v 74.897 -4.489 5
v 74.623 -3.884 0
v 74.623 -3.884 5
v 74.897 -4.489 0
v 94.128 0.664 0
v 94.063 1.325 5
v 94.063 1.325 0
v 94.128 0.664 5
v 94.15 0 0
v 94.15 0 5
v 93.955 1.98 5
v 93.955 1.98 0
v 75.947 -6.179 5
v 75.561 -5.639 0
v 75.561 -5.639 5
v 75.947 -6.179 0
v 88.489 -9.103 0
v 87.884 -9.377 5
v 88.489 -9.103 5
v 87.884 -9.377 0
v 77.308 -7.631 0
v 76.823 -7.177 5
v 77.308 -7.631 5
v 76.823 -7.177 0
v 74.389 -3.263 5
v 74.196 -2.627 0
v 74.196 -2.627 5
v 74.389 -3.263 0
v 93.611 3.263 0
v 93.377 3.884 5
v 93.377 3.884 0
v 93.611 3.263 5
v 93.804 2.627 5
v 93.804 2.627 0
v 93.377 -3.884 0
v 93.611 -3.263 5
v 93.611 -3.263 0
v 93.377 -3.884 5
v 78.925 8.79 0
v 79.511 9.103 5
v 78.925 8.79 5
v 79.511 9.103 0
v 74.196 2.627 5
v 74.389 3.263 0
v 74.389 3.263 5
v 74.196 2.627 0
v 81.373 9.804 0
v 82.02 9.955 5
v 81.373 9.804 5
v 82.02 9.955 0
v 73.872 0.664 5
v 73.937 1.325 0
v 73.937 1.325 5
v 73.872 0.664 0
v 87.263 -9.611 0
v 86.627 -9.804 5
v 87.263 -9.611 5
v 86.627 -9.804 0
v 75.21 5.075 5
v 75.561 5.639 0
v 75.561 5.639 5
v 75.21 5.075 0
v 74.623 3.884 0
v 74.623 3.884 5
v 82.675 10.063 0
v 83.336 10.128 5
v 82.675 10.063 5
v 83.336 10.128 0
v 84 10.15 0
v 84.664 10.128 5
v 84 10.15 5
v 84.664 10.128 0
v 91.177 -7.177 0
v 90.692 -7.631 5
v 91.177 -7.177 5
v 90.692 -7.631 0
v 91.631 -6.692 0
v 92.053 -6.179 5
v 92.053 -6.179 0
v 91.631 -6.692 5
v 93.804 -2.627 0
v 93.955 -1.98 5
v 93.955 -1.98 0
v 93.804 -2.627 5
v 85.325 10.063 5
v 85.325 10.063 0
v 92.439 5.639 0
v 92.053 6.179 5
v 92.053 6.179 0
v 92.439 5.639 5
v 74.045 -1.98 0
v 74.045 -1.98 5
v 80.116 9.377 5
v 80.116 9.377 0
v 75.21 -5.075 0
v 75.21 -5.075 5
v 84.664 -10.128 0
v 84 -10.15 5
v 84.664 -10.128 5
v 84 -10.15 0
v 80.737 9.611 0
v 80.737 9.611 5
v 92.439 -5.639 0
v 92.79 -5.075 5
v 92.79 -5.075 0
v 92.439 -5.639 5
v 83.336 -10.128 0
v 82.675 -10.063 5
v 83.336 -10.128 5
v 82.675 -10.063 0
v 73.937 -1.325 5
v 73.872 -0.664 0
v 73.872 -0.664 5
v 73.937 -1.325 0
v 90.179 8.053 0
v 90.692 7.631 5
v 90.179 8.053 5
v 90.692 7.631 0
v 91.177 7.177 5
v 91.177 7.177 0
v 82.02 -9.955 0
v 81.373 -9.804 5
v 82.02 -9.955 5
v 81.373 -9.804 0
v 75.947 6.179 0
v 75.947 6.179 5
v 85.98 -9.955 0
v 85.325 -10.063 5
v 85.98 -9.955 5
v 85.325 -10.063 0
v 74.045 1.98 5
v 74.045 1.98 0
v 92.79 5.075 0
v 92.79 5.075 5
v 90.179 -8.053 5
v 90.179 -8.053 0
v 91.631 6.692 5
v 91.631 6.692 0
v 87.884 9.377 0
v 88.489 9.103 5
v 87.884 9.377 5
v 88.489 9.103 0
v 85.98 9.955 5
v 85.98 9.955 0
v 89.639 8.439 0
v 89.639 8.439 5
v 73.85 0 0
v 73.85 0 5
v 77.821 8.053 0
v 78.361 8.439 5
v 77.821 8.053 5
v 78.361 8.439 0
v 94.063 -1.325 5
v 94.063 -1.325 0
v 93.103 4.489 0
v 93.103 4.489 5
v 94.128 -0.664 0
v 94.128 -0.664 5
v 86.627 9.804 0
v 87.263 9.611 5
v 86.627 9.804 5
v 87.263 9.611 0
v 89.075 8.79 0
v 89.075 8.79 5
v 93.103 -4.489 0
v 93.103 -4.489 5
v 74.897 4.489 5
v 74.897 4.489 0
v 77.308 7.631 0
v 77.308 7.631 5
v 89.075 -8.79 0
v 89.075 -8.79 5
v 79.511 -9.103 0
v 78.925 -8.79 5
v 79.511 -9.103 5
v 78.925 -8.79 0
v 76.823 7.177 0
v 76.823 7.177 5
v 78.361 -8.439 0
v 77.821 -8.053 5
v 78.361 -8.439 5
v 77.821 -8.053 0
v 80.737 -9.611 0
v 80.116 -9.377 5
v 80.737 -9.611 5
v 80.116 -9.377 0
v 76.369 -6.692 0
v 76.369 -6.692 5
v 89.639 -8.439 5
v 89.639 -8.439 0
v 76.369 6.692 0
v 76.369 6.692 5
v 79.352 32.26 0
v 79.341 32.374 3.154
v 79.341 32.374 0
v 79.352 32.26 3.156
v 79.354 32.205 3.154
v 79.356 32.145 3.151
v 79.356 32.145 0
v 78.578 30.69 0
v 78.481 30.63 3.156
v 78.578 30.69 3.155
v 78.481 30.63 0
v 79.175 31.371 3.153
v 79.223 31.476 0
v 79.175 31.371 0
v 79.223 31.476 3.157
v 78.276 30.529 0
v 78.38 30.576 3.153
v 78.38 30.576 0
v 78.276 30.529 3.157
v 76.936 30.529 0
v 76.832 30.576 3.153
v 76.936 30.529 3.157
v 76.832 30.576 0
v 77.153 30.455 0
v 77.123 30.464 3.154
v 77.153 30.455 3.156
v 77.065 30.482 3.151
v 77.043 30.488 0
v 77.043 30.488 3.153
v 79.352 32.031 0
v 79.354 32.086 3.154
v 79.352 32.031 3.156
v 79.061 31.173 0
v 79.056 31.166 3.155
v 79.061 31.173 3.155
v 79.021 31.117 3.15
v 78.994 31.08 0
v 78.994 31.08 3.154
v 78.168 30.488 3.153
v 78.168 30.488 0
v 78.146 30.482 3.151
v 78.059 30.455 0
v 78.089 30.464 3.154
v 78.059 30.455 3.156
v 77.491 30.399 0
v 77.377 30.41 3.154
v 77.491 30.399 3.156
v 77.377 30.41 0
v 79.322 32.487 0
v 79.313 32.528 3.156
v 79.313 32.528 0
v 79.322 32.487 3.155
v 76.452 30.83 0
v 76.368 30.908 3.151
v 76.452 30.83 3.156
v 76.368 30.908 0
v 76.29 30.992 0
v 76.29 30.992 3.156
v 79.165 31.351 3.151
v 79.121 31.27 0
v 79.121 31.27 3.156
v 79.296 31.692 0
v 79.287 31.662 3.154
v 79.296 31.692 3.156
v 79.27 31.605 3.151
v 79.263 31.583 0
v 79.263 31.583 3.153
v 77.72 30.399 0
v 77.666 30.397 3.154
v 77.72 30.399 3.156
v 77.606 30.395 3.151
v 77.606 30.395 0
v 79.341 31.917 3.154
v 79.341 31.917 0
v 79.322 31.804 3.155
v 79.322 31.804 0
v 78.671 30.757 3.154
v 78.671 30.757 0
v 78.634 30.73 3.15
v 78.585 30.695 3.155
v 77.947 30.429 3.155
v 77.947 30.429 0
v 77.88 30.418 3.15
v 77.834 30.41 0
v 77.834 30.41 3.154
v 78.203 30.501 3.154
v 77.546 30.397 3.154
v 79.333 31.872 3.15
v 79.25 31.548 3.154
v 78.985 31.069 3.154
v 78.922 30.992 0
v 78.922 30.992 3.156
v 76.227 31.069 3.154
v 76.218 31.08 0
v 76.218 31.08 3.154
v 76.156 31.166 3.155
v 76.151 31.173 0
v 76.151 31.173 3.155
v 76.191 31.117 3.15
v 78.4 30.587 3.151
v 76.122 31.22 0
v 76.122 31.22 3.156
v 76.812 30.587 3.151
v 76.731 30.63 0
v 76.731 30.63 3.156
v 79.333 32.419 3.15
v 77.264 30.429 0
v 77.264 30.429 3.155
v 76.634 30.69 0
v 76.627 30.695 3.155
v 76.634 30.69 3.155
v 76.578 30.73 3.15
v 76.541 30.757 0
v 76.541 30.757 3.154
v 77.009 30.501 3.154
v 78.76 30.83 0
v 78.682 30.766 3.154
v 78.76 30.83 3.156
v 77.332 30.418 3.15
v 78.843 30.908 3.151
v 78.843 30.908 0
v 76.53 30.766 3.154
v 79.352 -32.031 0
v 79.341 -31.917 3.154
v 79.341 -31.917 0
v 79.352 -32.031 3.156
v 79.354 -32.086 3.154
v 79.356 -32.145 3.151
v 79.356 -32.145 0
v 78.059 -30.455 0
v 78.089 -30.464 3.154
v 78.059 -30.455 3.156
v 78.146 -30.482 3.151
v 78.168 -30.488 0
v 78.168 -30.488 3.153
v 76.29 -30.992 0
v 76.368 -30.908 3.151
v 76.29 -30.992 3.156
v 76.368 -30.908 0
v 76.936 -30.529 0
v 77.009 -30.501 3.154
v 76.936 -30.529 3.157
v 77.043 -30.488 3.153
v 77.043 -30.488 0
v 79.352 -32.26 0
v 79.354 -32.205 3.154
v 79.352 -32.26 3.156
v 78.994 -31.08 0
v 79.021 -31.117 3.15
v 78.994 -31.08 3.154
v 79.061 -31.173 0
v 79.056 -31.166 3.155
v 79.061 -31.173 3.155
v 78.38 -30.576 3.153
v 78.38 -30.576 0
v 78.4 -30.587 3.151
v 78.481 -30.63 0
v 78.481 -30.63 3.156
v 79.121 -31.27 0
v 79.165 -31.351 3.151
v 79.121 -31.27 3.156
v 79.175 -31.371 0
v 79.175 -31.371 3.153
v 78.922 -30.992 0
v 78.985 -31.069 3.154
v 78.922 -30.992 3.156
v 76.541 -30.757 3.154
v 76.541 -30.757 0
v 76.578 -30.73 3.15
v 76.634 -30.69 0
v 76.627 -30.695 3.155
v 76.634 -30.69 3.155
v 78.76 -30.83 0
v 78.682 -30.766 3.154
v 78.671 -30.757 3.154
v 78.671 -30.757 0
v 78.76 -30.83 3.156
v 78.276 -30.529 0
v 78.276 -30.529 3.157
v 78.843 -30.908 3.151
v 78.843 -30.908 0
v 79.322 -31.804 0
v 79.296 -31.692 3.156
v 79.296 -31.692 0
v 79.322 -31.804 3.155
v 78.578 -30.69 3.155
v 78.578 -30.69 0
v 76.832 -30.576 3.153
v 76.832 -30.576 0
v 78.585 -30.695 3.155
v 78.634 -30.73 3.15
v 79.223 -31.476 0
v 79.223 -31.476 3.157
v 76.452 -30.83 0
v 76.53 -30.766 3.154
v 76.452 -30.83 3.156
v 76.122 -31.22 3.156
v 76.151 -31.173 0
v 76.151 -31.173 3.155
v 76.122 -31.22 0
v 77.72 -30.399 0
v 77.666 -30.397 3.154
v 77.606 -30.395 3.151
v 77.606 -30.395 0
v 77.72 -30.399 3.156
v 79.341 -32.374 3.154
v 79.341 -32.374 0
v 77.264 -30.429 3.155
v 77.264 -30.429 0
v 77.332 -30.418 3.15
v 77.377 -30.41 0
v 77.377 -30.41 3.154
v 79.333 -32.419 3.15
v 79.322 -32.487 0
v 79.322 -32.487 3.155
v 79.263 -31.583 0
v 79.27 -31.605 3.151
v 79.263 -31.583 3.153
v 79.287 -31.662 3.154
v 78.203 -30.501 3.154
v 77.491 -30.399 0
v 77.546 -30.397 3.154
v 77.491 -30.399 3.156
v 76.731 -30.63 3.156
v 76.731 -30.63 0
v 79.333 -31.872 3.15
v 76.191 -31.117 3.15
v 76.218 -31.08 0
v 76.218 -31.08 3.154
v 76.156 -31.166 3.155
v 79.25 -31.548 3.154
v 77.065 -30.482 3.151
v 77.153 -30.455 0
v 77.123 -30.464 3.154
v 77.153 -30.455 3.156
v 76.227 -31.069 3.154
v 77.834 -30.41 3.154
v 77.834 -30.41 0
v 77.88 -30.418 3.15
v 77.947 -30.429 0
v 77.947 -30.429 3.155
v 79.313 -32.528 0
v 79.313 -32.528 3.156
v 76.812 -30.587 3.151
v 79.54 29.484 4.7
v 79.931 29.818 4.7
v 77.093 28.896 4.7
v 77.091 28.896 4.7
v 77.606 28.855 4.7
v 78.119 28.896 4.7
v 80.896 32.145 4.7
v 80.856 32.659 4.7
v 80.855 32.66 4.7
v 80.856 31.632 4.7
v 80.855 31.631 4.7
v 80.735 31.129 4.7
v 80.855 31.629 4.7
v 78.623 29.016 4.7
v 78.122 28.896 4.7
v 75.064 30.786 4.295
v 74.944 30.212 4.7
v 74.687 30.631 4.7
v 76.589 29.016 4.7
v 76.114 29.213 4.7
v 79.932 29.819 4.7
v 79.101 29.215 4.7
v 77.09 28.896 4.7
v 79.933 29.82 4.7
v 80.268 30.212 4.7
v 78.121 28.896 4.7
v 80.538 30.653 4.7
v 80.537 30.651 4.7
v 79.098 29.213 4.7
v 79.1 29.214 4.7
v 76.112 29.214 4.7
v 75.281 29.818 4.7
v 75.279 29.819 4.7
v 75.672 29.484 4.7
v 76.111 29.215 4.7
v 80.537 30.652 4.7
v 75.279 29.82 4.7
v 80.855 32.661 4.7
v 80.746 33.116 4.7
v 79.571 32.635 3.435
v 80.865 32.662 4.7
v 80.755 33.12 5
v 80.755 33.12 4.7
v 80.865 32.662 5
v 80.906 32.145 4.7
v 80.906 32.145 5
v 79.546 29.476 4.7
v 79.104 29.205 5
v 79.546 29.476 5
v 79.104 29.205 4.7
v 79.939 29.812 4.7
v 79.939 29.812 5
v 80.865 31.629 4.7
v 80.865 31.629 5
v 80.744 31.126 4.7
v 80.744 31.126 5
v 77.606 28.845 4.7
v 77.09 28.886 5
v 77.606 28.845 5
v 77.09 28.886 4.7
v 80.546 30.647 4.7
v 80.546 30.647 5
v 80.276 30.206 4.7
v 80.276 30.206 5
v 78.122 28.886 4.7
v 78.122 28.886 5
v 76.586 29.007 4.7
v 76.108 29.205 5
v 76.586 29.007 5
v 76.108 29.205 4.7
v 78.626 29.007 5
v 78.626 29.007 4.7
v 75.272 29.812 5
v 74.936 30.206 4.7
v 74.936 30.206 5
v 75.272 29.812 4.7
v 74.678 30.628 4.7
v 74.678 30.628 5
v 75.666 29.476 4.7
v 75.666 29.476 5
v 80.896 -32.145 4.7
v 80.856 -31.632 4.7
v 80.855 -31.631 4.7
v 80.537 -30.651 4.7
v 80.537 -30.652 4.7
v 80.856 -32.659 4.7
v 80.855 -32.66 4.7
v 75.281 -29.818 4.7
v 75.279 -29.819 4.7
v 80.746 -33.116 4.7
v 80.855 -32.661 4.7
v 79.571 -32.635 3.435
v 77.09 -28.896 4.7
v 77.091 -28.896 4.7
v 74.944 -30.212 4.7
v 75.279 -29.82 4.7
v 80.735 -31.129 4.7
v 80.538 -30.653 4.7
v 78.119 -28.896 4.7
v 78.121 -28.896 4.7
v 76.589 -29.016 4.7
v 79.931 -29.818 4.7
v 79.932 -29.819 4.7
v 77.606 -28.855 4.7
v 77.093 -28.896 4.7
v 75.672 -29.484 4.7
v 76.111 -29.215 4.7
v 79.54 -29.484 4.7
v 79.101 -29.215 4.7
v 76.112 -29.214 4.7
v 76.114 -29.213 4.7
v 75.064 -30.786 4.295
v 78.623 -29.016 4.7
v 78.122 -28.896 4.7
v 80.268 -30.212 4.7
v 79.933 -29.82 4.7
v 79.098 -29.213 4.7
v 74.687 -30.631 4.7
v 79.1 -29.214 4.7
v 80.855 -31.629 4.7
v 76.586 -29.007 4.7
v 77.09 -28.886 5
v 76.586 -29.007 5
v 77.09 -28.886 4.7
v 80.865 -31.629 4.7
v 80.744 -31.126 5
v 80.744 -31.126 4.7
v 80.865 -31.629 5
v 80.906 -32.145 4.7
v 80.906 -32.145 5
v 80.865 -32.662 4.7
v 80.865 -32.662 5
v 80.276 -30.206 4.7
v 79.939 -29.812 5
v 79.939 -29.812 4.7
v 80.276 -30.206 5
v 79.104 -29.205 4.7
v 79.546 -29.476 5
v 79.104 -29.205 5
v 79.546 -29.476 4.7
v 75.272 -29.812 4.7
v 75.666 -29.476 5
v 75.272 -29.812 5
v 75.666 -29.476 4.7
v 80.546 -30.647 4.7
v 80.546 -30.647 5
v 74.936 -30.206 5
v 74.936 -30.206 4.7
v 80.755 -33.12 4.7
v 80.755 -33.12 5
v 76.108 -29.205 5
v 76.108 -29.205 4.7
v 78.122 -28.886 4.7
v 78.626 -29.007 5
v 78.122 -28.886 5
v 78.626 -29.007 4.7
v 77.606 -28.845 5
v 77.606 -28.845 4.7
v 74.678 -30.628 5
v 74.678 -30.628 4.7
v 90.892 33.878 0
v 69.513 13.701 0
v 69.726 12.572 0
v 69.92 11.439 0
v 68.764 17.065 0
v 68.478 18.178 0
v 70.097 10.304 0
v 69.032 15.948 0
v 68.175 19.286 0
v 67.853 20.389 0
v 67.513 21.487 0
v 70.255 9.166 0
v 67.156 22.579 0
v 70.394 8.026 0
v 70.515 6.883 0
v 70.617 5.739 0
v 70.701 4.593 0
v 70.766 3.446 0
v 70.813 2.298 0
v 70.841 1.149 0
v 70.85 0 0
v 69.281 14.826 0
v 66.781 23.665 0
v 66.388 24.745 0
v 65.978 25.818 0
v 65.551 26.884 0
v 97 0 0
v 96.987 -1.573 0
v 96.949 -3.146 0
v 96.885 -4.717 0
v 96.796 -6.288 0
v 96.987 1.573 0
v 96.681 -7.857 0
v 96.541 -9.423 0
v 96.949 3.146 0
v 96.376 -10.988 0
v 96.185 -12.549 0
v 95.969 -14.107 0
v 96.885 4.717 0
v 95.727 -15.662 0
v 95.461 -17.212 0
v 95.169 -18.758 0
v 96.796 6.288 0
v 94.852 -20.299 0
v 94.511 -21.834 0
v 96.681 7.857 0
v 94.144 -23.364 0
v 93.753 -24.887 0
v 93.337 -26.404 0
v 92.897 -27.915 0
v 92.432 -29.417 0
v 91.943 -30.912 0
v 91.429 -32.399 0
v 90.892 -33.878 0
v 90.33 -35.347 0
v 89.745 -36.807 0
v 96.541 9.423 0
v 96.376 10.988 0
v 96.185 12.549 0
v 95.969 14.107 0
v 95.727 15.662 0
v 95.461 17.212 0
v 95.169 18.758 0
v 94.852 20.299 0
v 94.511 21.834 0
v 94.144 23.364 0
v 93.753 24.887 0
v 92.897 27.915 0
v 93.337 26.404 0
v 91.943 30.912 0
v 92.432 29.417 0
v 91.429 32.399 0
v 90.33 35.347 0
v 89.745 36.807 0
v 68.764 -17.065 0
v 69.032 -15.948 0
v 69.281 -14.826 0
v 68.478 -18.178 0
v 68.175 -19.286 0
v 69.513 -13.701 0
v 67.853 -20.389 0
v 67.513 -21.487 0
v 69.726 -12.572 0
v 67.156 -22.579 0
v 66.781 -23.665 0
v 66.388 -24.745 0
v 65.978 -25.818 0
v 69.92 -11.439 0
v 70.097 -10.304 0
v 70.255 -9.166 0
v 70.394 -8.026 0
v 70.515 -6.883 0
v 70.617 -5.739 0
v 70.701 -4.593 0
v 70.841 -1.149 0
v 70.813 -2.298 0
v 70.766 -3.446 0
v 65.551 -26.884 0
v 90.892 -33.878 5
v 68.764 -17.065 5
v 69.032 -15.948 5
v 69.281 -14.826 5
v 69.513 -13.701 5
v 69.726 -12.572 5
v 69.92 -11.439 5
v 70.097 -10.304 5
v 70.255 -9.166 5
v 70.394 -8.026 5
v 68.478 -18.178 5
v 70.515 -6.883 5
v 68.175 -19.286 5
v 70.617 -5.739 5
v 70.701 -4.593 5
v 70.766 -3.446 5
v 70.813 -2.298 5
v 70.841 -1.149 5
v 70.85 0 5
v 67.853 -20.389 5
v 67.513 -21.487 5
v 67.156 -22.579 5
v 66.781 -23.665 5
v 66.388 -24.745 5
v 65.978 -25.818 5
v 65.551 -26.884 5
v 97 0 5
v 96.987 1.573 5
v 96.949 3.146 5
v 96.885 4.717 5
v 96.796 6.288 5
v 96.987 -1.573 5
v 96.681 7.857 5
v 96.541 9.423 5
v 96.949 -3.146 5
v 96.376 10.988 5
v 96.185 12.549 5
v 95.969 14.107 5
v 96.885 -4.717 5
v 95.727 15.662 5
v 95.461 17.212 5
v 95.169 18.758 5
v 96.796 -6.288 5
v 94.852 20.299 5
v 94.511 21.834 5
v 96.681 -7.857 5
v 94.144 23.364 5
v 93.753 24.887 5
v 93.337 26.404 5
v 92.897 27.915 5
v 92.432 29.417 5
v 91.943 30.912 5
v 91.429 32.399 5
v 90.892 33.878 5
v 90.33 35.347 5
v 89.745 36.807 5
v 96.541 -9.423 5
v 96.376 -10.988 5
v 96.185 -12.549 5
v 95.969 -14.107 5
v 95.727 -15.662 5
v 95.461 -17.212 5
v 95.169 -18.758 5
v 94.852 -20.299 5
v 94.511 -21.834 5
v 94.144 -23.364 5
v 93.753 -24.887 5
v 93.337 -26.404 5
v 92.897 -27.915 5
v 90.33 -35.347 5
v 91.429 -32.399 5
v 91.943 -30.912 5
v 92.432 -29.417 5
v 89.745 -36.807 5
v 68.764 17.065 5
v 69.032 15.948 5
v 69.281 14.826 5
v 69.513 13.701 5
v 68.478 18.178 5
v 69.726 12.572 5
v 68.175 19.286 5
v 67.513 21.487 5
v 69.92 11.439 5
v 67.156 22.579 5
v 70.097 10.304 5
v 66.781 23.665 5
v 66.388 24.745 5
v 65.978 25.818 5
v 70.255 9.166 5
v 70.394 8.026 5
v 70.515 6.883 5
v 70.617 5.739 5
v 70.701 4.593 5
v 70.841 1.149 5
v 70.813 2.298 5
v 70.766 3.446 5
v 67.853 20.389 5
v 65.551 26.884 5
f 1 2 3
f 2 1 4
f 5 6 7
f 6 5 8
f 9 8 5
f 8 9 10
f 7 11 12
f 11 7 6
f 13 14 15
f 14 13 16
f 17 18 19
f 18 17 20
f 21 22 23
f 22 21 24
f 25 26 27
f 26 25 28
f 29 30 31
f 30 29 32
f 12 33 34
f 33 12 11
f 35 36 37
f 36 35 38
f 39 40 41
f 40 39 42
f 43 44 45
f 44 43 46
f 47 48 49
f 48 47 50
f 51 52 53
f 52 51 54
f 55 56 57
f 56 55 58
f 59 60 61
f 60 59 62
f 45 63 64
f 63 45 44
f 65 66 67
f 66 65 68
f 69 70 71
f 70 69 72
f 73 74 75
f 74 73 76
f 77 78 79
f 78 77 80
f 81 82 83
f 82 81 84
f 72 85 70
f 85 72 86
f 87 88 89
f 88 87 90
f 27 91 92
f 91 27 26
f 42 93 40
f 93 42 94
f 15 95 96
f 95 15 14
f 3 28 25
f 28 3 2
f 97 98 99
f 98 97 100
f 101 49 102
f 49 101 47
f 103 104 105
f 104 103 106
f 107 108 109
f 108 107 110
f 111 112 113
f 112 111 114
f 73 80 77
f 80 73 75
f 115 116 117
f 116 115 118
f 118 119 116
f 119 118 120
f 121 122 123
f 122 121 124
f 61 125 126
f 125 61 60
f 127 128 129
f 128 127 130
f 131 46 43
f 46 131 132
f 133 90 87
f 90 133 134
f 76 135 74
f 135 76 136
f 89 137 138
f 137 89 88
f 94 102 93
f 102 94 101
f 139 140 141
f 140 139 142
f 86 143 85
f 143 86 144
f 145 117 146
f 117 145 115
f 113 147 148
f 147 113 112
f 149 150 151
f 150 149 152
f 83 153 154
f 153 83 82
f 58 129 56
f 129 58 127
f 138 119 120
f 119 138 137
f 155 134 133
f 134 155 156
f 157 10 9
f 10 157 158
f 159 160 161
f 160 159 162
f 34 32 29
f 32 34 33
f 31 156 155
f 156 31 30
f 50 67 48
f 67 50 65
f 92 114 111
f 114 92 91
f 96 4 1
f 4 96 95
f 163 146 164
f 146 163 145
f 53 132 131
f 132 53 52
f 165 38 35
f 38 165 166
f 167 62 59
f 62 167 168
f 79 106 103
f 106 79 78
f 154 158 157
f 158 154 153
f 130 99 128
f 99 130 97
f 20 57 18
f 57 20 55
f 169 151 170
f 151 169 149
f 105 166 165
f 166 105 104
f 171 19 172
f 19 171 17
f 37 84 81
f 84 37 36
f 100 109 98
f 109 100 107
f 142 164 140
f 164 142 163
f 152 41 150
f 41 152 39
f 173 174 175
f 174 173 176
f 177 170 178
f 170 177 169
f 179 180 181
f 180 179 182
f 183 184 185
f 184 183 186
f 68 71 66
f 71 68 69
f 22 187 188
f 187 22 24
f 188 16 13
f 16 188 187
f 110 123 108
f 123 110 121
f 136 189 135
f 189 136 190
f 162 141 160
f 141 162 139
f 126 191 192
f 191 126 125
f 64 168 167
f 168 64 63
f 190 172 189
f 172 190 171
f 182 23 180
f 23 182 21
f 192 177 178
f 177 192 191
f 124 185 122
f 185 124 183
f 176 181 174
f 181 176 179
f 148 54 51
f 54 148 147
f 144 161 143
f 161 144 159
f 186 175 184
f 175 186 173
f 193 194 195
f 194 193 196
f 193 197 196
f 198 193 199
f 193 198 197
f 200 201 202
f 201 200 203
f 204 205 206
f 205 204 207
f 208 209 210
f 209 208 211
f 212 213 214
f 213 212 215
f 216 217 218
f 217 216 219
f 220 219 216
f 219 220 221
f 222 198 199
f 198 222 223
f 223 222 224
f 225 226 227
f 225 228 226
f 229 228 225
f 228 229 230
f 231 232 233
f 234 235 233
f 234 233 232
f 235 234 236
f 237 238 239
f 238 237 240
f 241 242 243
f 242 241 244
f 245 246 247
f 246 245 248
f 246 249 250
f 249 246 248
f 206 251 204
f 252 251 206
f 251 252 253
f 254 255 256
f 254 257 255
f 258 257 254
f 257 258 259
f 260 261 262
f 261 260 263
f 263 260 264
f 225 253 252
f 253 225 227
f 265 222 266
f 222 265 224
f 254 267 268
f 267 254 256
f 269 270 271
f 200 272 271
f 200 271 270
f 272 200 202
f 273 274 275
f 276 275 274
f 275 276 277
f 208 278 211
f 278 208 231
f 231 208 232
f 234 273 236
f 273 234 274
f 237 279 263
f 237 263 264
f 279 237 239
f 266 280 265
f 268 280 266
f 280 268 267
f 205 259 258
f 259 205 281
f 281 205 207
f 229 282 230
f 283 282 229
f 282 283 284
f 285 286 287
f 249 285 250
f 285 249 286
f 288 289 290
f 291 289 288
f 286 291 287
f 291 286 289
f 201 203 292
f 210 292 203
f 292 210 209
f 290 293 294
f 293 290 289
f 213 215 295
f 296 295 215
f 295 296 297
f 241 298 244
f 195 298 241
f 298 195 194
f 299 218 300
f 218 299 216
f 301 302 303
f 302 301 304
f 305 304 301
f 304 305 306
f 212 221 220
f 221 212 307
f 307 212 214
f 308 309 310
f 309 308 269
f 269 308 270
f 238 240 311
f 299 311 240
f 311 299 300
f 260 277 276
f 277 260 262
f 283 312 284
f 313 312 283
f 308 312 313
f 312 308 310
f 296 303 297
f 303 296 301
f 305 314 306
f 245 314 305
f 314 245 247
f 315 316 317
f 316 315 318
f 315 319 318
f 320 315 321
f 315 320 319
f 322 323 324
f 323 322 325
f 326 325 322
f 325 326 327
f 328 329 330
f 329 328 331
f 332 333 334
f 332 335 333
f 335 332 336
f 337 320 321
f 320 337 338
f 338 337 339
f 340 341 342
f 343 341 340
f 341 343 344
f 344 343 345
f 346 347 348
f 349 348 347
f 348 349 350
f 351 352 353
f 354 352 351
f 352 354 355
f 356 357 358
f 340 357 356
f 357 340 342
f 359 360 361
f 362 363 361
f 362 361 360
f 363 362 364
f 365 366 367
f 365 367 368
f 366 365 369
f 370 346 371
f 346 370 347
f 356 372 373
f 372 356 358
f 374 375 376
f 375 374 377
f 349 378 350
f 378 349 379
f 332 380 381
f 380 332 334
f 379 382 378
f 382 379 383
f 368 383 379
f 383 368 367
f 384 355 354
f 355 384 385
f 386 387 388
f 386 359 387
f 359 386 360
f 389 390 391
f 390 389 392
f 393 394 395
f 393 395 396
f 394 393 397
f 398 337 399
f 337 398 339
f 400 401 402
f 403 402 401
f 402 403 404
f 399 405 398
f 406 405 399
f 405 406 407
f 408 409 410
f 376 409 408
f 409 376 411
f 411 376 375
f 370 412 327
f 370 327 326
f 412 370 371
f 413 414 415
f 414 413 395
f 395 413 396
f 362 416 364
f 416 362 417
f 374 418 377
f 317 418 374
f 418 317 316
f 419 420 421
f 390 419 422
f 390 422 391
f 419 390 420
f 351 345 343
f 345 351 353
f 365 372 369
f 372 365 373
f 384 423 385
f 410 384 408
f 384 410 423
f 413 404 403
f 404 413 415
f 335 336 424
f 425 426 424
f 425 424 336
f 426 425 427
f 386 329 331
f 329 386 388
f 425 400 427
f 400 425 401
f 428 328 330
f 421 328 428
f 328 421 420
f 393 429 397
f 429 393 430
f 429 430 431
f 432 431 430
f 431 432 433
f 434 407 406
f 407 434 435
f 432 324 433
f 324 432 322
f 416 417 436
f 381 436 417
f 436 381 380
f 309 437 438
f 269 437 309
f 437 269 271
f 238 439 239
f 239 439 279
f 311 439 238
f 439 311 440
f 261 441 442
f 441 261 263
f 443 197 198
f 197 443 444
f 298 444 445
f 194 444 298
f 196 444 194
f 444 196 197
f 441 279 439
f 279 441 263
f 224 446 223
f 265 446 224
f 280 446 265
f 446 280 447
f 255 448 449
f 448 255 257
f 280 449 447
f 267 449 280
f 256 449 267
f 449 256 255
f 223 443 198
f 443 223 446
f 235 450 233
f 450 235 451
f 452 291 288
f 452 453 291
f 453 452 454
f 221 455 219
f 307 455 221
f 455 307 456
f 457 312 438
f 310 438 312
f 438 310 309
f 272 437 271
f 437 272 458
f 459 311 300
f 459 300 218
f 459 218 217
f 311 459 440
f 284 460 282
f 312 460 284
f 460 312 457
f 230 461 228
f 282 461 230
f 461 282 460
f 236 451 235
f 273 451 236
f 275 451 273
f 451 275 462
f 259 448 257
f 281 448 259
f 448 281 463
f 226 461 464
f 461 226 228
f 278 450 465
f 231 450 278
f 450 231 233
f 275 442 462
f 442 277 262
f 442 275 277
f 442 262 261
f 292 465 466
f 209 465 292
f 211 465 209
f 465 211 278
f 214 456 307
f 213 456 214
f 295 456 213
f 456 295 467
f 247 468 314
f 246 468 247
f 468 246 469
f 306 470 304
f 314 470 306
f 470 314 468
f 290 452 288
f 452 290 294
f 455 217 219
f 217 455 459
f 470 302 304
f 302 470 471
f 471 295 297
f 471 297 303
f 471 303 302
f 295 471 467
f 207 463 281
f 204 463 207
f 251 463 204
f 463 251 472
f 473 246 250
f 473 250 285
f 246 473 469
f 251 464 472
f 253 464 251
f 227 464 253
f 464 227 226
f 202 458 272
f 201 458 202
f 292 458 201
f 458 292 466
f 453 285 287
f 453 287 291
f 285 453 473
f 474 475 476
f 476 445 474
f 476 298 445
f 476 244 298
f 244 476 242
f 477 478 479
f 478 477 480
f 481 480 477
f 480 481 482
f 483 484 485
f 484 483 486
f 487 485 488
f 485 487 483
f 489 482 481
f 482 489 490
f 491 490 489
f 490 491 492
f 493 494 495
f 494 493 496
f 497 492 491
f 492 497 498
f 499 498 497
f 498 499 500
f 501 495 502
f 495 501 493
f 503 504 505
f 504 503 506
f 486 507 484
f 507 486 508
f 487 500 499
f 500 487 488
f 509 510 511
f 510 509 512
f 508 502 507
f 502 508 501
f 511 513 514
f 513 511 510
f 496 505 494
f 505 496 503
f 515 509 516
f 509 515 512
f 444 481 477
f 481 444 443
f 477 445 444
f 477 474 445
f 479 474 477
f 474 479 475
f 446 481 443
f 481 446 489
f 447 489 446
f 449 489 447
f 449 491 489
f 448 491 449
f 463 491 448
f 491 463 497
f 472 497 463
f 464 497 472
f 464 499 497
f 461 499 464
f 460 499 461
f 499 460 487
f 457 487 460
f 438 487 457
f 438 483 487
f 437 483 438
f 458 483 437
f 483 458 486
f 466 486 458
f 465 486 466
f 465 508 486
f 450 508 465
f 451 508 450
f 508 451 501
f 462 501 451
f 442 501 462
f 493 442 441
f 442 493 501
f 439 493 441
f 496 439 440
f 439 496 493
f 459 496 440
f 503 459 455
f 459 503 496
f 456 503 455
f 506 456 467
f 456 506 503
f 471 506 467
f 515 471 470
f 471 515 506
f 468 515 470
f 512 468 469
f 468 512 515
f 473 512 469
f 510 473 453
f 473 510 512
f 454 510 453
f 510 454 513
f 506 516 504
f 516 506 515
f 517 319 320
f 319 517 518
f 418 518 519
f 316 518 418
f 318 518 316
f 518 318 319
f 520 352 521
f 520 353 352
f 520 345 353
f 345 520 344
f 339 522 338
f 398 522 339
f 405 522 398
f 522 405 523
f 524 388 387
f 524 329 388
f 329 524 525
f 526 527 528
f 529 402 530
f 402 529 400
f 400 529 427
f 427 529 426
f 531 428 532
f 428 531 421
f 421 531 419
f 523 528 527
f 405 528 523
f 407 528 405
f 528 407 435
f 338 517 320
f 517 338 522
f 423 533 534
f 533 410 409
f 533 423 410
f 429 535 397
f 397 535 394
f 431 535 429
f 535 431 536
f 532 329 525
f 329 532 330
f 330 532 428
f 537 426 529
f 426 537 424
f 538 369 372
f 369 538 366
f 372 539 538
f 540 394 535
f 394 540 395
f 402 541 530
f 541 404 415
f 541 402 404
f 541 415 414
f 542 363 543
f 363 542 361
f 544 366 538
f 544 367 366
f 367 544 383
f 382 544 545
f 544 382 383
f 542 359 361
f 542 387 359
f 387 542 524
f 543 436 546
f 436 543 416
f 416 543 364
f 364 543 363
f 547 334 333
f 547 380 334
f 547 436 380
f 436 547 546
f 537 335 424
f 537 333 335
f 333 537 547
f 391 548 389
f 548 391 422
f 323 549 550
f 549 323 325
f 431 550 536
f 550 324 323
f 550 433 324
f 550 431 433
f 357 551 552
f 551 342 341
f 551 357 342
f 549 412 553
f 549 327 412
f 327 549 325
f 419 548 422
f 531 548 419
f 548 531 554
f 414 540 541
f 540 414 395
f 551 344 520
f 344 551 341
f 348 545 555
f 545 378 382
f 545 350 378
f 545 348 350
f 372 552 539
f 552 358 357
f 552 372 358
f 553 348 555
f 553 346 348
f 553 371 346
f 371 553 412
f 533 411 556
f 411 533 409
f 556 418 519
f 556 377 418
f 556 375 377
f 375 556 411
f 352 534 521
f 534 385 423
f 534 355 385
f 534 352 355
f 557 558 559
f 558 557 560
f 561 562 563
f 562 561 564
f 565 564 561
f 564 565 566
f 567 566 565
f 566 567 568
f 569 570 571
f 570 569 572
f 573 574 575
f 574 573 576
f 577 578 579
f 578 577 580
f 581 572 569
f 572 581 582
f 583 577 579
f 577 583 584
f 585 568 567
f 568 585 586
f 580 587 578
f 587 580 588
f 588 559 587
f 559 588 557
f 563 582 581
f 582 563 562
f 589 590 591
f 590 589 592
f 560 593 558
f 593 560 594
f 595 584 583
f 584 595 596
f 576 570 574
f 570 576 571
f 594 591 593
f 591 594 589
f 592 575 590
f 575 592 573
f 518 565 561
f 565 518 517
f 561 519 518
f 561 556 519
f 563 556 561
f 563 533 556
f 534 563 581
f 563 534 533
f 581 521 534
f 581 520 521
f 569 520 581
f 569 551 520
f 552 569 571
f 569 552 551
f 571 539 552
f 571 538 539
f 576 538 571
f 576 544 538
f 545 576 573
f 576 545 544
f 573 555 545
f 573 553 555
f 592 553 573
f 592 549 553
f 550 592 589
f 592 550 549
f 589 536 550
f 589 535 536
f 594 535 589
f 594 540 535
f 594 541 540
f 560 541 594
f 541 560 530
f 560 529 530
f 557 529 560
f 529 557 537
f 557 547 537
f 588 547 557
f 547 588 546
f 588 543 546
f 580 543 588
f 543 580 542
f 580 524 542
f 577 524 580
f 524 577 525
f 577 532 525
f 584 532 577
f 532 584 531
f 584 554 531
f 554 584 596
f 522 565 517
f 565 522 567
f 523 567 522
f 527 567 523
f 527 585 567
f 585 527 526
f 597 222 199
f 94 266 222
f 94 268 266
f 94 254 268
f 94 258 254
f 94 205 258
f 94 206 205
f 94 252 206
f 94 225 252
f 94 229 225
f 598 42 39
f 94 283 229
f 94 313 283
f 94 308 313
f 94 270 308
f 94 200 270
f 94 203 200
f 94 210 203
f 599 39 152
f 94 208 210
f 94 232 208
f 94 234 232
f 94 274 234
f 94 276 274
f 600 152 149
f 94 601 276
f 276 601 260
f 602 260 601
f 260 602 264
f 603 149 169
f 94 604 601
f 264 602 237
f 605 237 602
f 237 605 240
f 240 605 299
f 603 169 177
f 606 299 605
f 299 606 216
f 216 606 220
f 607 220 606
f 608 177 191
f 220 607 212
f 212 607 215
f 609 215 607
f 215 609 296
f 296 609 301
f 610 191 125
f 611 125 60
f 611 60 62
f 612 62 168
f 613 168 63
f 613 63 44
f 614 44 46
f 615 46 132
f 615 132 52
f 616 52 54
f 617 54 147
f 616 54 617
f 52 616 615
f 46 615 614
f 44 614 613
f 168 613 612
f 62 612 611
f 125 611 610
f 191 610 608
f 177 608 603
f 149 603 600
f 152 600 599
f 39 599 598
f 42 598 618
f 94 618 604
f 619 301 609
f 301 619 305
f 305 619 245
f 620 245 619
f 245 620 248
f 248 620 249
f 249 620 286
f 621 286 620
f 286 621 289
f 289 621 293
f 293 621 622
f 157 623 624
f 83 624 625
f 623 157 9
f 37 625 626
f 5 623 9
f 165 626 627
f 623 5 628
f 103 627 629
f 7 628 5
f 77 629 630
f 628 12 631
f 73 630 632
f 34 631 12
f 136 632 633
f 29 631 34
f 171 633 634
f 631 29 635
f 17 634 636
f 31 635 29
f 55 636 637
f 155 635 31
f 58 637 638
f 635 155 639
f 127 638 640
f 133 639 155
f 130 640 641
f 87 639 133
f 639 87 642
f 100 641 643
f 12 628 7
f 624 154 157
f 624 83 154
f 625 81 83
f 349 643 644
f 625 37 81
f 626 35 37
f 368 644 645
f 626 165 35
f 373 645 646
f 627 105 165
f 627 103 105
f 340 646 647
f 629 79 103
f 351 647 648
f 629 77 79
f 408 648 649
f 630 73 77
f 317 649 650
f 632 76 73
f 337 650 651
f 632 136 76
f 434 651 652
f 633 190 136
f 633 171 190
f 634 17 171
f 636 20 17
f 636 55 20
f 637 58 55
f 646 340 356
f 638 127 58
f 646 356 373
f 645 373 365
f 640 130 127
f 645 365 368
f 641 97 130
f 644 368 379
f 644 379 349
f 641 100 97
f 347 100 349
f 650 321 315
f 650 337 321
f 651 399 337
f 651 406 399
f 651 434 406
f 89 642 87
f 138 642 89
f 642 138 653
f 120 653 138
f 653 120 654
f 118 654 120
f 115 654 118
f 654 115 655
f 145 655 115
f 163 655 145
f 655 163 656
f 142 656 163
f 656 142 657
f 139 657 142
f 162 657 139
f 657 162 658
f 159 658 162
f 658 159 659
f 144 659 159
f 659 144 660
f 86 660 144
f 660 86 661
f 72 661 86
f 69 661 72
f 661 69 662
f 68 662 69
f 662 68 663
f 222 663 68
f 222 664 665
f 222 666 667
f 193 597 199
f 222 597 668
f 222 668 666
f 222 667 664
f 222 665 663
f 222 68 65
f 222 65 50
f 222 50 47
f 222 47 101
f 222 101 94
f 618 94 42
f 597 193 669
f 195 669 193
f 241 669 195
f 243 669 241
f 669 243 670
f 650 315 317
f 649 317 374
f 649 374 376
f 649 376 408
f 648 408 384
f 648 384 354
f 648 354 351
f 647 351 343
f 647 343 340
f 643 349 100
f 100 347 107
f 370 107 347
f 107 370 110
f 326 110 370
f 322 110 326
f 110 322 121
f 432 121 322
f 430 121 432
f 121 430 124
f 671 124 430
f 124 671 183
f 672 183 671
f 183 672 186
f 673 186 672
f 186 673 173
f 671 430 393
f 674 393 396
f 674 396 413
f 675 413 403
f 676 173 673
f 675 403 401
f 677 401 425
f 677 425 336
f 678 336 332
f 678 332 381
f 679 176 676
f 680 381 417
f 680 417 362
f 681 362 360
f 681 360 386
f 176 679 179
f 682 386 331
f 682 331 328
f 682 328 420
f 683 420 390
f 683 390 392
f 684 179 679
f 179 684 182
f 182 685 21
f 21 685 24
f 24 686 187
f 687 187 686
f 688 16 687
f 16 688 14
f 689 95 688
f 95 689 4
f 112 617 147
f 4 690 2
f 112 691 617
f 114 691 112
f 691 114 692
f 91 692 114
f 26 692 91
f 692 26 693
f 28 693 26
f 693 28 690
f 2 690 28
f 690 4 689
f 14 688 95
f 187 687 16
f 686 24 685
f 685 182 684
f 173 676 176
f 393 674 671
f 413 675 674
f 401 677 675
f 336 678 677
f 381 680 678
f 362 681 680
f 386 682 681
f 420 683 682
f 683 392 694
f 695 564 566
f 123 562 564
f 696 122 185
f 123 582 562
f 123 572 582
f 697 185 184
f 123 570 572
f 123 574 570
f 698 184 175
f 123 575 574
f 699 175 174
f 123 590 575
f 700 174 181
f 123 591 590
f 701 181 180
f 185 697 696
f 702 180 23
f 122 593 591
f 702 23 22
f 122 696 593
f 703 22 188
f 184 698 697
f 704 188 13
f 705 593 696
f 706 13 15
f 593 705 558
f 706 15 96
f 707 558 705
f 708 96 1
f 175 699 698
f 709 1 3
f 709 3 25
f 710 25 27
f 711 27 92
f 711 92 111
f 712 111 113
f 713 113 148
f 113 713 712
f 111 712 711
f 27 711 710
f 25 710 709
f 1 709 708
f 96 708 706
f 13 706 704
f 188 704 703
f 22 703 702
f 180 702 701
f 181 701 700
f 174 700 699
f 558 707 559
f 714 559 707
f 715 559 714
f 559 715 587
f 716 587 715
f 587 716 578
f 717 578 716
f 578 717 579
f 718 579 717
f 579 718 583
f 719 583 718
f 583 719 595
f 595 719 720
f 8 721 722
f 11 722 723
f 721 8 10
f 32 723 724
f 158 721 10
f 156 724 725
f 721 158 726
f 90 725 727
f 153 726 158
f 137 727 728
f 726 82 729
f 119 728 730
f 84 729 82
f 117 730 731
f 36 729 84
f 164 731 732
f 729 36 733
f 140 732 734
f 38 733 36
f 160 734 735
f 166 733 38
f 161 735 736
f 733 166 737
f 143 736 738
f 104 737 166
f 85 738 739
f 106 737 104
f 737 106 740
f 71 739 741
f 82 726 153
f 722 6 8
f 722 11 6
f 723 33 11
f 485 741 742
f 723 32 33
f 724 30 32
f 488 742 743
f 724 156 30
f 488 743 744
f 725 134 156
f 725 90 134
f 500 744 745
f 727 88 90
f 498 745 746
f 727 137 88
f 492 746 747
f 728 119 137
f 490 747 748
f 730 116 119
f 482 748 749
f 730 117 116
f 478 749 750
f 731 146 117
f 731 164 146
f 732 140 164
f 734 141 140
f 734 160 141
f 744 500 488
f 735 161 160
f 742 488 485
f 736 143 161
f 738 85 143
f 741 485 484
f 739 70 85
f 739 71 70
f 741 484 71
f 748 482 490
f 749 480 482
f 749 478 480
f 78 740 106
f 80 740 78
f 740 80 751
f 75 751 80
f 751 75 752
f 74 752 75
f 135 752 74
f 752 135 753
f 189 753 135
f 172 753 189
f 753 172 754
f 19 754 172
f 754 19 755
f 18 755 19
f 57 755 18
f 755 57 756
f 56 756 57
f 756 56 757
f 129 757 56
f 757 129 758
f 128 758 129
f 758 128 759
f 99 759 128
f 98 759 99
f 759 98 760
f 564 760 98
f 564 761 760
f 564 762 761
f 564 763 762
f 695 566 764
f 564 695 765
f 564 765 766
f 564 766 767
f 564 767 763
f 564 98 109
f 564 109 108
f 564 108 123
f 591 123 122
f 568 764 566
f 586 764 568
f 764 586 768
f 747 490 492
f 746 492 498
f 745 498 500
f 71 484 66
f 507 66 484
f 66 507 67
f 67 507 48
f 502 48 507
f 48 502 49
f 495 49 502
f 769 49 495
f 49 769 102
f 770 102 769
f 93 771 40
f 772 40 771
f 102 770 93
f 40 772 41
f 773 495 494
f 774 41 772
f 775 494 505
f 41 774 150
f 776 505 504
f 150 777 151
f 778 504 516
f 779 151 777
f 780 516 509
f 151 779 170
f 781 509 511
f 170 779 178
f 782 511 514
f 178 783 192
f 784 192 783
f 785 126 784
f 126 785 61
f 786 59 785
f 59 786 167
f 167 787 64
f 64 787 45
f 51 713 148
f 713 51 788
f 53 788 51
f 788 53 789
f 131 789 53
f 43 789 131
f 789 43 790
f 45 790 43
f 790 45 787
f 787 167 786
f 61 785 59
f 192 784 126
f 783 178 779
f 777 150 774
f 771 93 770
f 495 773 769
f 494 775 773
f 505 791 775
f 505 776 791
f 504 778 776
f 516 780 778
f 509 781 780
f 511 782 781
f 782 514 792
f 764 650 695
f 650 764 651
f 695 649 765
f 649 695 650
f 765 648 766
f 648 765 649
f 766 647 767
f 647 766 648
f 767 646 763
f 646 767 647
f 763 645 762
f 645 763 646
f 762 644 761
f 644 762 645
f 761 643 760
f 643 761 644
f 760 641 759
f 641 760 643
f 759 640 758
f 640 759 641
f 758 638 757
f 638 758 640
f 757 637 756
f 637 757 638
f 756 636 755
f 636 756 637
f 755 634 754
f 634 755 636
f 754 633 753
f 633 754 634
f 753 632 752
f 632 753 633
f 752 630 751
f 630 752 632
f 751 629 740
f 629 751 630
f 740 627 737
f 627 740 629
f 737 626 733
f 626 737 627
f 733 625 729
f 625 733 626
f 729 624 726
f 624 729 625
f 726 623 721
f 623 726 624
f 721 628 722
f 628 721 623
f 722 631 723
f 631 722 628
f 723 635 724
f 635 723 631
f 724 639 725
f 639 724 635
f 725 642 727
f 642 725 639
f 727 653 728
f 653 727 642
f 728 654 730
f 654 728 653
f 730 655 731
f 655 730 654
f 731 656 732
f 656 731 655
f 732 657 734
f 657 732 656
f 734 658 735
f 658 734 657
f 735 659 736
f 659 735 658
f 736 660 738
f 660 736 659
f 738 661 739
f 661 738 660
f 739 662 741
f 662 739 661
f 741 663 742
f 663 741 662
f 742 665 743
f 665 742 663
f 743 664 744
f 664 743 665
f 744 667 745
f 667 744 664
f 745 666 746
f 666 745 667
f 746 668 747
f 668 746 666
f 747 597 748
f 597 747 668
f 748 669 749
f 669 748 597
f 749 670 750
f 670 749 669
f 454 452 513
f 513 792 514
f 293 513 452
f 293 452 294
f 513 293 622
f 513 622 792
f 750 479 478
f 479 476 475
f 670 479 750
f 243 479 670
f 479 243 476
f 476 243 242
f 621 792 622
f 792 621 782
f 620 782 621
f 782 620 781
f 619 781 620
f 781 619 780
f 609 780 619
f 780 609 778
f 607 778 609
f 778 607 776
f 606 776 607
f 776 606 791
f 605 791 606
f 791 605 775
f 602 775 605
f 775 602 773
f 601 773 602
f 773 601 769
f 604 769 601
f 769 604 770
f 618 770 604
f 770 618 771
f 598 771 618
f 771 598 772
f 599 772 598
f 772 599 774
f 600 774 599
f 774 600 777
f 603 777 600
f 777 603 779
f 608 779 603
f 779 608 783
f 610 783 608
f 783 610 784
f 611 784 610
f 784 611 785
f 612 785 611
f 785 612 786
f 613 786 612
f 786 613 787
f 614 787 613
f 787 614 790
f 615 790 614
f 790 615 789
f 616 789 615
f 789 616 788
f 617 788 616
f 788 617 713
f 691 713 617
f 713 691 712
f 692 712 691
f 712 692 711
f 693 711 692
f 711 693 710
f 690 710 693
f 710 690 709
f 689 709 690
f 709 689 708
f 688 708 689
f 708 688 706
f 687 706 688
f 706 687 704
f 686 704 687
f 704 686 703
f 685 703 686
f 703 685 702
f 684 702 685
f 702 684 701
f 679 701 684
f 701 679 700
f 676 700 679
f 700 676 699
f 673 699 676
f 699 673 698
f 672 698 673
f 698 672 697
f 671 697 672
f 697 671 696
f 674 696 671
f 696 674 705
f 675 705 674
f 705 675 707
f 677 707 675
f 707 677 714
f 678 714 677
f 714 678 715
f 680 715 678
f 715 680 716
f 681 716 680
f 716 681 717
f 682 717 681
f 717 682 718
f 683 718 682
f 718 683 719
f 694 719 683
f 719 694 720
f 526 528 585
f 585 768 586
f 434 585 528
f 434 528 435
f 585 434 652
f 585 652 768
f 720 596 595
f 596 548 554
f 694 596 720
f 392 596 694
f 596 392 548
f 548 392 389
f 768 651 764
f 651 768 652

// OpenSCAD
// file: parameters.scad
// =============================================================================
// Gen-CA — nightly 2026-10-13 (physics_scorer, honest magpylib watts)
// Break the plate limit instead of the physics: the 2026-10-11 scans showed watts keep rising with machine size, but Ø194 was the largest one-piece stator/rotor set that fits one 410 mm plate. Gen-CA makes the steel disc the structural rotor and prints the magnet carrier as 8 bolt-on arcs per rotor plus a separate D-flat hub, opens the stator centre, and prints the 12 bobbin bases in place inside their stator bays, so a much bigger R84 / Ø226 machine (bobbins r64–104, 4.95 mm copper, 7.55 mm magnet gap) still packs on ONE plate.
// Clocking 0 deg (magnets N facing S) + D-flat keyed bore + index notch + flip-symmetric hole map.
// Windable 2-piece bobbin; turns = physics_scorer turns_fit; copper only between flanges.
// Steel back-iron: 2× Ø194 × 4.76 mm (3/16") mild-steel discs (steel_backiron_disc.dxf); magnets sit ON the steel
// (through-pockets) -> score with --back-iron. Night 2026-10-13.
// =============================================================================
topology            = "dual_rotor";

// --- Wire / winding (physics_scorer winding-fit) -------------------------------
wire_awg            = 26;
wire_od             = 0.45;     // insulated OD mm (bare 0.405)
fill_realistic      = 0.65;     // insulated-wire area / window (DENSE layered wind with a jig; scorer cap 0.65)
turns               = 366;       // = physics_scorer turns_fit (do NOT raise)
coil_former_type    = "bobbin";
coil_core_inset     = 18.10;     // radial copper build: hub = copper boundary inset by this
wind_build_axial    = 0.0;      // nothing proud of the flanges
wind_build_radial   = 0.0;

// --- Bobbin (base + lid) ---------------------------------------------------------
coil_id_r           = 64.00;    // copper boundary sector
coil_od_r           = 104.00;
span_deg            = 26.87;    // = pitch - 2*asin((wall+0.85)/coil_id_r) -> >=1.2 mm stator web
former_web          = 4.95;     // copper height between flanges (TALL copper: steel keeps Bz up)
flange_t            = 0.80;     // >= 0.8 mm FDM wall rule (tall winds push on the flanges)
wall                = 0.80;     // flange lip beyond copper
former_bare_h       = former_web + 2 * flange_t;
coil_envelope_h     = former_bare_h + 2 * wind_build_axial;
tab_w               = 7.0;
tab_len             = 7.0;
tab_h               = former_bare_h / 2;
pin_d               = 1.9;      // 1.75 mm filament locating pin
coil_mount_r        = coil_od_r + 0.2 + 4.0;
lead_y              = 1.6;
lead_slot_w         = 0.9;
lead_groove_d       = 0.6;

// --- Gap -------------------------------------------------------------------------
run_clear           = 0.50;     // rotor face -> flange
gap_spacer_h        = run_clear + wind_build_axial;
m2m                 = coil_envelope_h + 2 * run_clear;   // rotor face to rotor face (= gap_sleeve length)

// --- Stator ----------------------------------------------------------------------
coil_stations       = 12;
bay_clear           = 0.35;     // 0.35 mm: bobbin BASES print IN PLACE inside the stator bays (print-in-place gap), then pop out
stator_thick        = former_bare_h;                        // bobbins flush both faces
stator_od           = 226;
shaft_clear_stator  = 14.0;     // stator is static; gap sleeve OD 12 spins inside
stator_ir           = 58.85;    // ANNULAR stator: open centre (nested one-plate pack); inner rim 4.0 mm

// --- Rotor(s) --------------------------------------------------------------------
magnet_Br           = 1.43;     // N52
magnet_d_large      = 20.0;
magnet_h_large      = 5.0;      // one O20x5 per pocket
magnet_h_small      = 5.0;      // unused: no O5 pockets in this kit
halbach_magnetisation = "none";  // NO O5 assist magnets in this kit (scan: they lower the 4-pole score)
rotor_b_same_axis   = true;     // same-index magnets share one axis: N faces S across the gap
large_pocket_d      = 20.3;
small_pocket_d      = 5.3;
pocket_h            = 5.00;     // THROUGH the carrier: magnet back face sits on the steel disc (FLUSH seat: carrier = magnet height, magnet face level with the rotor face)
large_n             = 8;
R_large             = 84.0;
small_r_list        = [];       // no O5 pockets
carrier_od          = 194.0;
ring_ir             = 70.85;    // RING rotor: PLA magnet ring r ring_ir..carrier_od/2 (steel disc = structural rotor)
hub_flange_od       = 74.0;     // separate rotor_hub flange (inside the ring, flush with the ring face)
csk_d               = 6.6;      // M3 countersunk head pocket (ISO 10642 head 6.0 nominal) on the stator face
csk_depth           = 1.55;     // = (csk_d - m3_clear) / 2: 90 deg cone; head sits 0.3 mm below the face
n_seg               = 8;        // magnet-carrier ARCS per rotor (segmented carrier)
seg_deg             = 360 / n_seg;
seg_start           = -22.5;   // arc edge angle (between pocket 0 and its clamp bolt)
seg_kerf_deg        = 0.4;      // gap between neighbouring arcs on the steel
carrier_thick       = pocket_h;
hub_h               = 12.0;     // > steel_t + insert: radial set-screw clears the steel
hub_od              = 24.0;     // slim hub so the M4 brace rods fit at R~18 inside the coil ring
hub_insert_d        = 4.0;      // M3 heat-set insert, radial, bears on the D-flat
rotor_b_offset_deg  = 0.0;      // CLOCKING: magnets directly opposite
shaft_key           = "dflat";
dflat_depth         = 0.5;      // 8 mm shaft with 0.5 mm flat (7.5 across flat)
index_notch_d       = 3.0;

// --- Steel back-iron (buyable laser-cut) -------------------------------------------
steel_t             = 4.76;      // mild steel thickness (image method ignores it; sized from steel_flux.py so the return path stays well below saturation)
steel_center_hole   = 26.0;     // slips over the rotor hub (OD 24)
steel_od            = carrier_od;   // steel disc OD = rotor carrier OD

// --- Modular MAX interface ----------------------------------------------------------
shaft_bore          = 8.35;
dflat_x             = 4.0 - dflat_depth + (shaft_bore - 8.0) / 2;
bearing_d           = 21.85;
bearing_h           = 7.2;
m3_clear            = 3.5;
bolt_r_inner        = 30.0;     // M3 steel-disc clamp bolts (inside the magnet ring)
bolt_n_inner        = 4;
bolt_inner_angles   = [0, 90, 180, 270];
bolt_r_outer        = 84.0;     // second M3 steel-disc clamp ring
bolt_outer_angles   = [22.5, 67.5, 112.5, 157.5, 202.5, 247.5, 292.5, 337.5];
flange_bolt_r       = 107.5;     // frame rods: OUTSIDE the rotor OD (rotors spin inside them)
flange_bolt_n       = 4;
flange_bolt_offset  = 45.00;    // between coil stations -> never cuts a lead groove/tab
brace_r             = 18.0;
brace_d             = 4.3;      // temporary M4 jack rods (assembly only)
brace_n             = 4;
brace_angles        = [45, 135, 225, 315];          // flip-symmetric

spacer_pad_od       = 14.0;
spacer_pad_id       = m3_clear;
endbell_od          = 225.0;
endbell_thick       = 8.0;
endbell_shaft_clear = 10.0;
collar_h            = 10.0;
standoff_od         = 9.0;
frame_standoff_h    = run_clear + carrier_thick + hub_h + collar_h + 2.0;
sleeve_od           = 12.0;
plate_max_mm        = 410;

$fn = 64;
// main file
// Gen-CA — rotor B MAGNET-CARRIER ARC (2026-10-13 segmented nested pack). Print x8 per rotor (16 total
// for A+B; A and B arcs are the same print). Each arc covers seg_deg = 360/n_seg of the R_large ring and holds 1 O20 through-pockets
// + 1 countersunk M3 clamp holes (inter-pole, R bolt_r_outer) to the steel disc. The 4.76 mm mild-steel disc is the structural
// rotor; the separate rotor_hub (D-flat) bolts to it at R bolt_r_inner. Arcs pack around/inside the other parts on ONE plate,
// and any arc can be swapped/re-printed on its own (modular magnet carrier).
// CLOCKING: arc j spans [j*seg_deg + seg_start, (j+1)*seg_deg + seg_start - kerf]; pockets at i*360/large_n + rotor_b_offset_deg (= 0).
// The arc's bolt holes sit on the same 8-fold map as the pockets, so every arc position puts pockets on the same steel angles;
// pocket 0 = the pocket over the STEEL index notch (clocked to the hub D-flat). Rotor B arcs = same print, flipped to face A.
// Print countersinks UP (stator face up); the arc lies flat (5 mm), no supports.
include <parameters.scad>;
$fn = 96;
module ring_holes_2d() {
    for (a = bolt_outer_angles) translate([bolt_r_outer*cos(a), bolt_r_outer*sin(a)]) circle(d=m3_clear);
    translate([carrier_od/2, 0]) circle(d=index_notch_d, $fn=24);
}
module hub_holes_2d() {
    for (a = bolt_inner_angles) translate([bolt_r_inner*cos(a), bolt_r_inner*sin(a)]) circle(d=m3_clear);
    for (a = brace_angles) translate([brace_r*cos(a), brace_r*sin(a)]) circle(d=brace_d);
    translate([hub_flange_od/2, 0]) circle(d=index_notch_d, $fn=24);
}
module csk(r, angles) {   // M3 countersunk (ISO 10642, 90 deg) head pocket on the STATOR face, head 0.3 mm below the face
    for (a = angles) translate([r*cos(a), r*sin(a), 0]) {
        translate([0, 0, carrier_thick - 0.3 - csk_depth - 0.2]) cylinder(d1=m3_clear - 0.4, d2=csk_d, h=csk_depth + 0.2 + 0.01, $fn=40);
        translate([0, 0, carrier_thick - 0.3]) cylinder(d=csk_d, h=0.4, $fn=40);
    }
}

off = rotor_b_offset_deg;
module arc_2d() {
    a0 = seg_start + seg_kerf_deg / 2; a1 = seg_start + seg_deg - seg_kerf_deg / 2;
    polygon(concat(
        [for (k = [0 : 48]) let(t = a0 + (a1 - a0) * k / 48) [(carrier_od/2) * cos(t), (carrier_od/2) * sin(t)]],
        [for (k = [48 : -1 : 0]) let(t = a0 + (a1 - a0) * k / 48) [ring_ir * cos(t), ring_ir * sin(t)]]));
}
difference() {
    linear_extrude(carrier_thick) arc_2d();
    for (i = [0 : large_n-1]) {
        a = i * 360 / large_n + off;
        translate([R_large*cos(a), R_large*sin(a), -0.1]) cylinder(d=large_pocket_d, h=carrier_thick + 0.2);
    }
    for (a = bolt_outer_angles) translate([bolt_r_outer*cos(a), bolt_r_outer*sin(a), -0.1]) cylinder(d=m3_clear, h=carrier_thick + 0.2);
    csk(bolt_r_outer, bolt_outer_angles);
}
